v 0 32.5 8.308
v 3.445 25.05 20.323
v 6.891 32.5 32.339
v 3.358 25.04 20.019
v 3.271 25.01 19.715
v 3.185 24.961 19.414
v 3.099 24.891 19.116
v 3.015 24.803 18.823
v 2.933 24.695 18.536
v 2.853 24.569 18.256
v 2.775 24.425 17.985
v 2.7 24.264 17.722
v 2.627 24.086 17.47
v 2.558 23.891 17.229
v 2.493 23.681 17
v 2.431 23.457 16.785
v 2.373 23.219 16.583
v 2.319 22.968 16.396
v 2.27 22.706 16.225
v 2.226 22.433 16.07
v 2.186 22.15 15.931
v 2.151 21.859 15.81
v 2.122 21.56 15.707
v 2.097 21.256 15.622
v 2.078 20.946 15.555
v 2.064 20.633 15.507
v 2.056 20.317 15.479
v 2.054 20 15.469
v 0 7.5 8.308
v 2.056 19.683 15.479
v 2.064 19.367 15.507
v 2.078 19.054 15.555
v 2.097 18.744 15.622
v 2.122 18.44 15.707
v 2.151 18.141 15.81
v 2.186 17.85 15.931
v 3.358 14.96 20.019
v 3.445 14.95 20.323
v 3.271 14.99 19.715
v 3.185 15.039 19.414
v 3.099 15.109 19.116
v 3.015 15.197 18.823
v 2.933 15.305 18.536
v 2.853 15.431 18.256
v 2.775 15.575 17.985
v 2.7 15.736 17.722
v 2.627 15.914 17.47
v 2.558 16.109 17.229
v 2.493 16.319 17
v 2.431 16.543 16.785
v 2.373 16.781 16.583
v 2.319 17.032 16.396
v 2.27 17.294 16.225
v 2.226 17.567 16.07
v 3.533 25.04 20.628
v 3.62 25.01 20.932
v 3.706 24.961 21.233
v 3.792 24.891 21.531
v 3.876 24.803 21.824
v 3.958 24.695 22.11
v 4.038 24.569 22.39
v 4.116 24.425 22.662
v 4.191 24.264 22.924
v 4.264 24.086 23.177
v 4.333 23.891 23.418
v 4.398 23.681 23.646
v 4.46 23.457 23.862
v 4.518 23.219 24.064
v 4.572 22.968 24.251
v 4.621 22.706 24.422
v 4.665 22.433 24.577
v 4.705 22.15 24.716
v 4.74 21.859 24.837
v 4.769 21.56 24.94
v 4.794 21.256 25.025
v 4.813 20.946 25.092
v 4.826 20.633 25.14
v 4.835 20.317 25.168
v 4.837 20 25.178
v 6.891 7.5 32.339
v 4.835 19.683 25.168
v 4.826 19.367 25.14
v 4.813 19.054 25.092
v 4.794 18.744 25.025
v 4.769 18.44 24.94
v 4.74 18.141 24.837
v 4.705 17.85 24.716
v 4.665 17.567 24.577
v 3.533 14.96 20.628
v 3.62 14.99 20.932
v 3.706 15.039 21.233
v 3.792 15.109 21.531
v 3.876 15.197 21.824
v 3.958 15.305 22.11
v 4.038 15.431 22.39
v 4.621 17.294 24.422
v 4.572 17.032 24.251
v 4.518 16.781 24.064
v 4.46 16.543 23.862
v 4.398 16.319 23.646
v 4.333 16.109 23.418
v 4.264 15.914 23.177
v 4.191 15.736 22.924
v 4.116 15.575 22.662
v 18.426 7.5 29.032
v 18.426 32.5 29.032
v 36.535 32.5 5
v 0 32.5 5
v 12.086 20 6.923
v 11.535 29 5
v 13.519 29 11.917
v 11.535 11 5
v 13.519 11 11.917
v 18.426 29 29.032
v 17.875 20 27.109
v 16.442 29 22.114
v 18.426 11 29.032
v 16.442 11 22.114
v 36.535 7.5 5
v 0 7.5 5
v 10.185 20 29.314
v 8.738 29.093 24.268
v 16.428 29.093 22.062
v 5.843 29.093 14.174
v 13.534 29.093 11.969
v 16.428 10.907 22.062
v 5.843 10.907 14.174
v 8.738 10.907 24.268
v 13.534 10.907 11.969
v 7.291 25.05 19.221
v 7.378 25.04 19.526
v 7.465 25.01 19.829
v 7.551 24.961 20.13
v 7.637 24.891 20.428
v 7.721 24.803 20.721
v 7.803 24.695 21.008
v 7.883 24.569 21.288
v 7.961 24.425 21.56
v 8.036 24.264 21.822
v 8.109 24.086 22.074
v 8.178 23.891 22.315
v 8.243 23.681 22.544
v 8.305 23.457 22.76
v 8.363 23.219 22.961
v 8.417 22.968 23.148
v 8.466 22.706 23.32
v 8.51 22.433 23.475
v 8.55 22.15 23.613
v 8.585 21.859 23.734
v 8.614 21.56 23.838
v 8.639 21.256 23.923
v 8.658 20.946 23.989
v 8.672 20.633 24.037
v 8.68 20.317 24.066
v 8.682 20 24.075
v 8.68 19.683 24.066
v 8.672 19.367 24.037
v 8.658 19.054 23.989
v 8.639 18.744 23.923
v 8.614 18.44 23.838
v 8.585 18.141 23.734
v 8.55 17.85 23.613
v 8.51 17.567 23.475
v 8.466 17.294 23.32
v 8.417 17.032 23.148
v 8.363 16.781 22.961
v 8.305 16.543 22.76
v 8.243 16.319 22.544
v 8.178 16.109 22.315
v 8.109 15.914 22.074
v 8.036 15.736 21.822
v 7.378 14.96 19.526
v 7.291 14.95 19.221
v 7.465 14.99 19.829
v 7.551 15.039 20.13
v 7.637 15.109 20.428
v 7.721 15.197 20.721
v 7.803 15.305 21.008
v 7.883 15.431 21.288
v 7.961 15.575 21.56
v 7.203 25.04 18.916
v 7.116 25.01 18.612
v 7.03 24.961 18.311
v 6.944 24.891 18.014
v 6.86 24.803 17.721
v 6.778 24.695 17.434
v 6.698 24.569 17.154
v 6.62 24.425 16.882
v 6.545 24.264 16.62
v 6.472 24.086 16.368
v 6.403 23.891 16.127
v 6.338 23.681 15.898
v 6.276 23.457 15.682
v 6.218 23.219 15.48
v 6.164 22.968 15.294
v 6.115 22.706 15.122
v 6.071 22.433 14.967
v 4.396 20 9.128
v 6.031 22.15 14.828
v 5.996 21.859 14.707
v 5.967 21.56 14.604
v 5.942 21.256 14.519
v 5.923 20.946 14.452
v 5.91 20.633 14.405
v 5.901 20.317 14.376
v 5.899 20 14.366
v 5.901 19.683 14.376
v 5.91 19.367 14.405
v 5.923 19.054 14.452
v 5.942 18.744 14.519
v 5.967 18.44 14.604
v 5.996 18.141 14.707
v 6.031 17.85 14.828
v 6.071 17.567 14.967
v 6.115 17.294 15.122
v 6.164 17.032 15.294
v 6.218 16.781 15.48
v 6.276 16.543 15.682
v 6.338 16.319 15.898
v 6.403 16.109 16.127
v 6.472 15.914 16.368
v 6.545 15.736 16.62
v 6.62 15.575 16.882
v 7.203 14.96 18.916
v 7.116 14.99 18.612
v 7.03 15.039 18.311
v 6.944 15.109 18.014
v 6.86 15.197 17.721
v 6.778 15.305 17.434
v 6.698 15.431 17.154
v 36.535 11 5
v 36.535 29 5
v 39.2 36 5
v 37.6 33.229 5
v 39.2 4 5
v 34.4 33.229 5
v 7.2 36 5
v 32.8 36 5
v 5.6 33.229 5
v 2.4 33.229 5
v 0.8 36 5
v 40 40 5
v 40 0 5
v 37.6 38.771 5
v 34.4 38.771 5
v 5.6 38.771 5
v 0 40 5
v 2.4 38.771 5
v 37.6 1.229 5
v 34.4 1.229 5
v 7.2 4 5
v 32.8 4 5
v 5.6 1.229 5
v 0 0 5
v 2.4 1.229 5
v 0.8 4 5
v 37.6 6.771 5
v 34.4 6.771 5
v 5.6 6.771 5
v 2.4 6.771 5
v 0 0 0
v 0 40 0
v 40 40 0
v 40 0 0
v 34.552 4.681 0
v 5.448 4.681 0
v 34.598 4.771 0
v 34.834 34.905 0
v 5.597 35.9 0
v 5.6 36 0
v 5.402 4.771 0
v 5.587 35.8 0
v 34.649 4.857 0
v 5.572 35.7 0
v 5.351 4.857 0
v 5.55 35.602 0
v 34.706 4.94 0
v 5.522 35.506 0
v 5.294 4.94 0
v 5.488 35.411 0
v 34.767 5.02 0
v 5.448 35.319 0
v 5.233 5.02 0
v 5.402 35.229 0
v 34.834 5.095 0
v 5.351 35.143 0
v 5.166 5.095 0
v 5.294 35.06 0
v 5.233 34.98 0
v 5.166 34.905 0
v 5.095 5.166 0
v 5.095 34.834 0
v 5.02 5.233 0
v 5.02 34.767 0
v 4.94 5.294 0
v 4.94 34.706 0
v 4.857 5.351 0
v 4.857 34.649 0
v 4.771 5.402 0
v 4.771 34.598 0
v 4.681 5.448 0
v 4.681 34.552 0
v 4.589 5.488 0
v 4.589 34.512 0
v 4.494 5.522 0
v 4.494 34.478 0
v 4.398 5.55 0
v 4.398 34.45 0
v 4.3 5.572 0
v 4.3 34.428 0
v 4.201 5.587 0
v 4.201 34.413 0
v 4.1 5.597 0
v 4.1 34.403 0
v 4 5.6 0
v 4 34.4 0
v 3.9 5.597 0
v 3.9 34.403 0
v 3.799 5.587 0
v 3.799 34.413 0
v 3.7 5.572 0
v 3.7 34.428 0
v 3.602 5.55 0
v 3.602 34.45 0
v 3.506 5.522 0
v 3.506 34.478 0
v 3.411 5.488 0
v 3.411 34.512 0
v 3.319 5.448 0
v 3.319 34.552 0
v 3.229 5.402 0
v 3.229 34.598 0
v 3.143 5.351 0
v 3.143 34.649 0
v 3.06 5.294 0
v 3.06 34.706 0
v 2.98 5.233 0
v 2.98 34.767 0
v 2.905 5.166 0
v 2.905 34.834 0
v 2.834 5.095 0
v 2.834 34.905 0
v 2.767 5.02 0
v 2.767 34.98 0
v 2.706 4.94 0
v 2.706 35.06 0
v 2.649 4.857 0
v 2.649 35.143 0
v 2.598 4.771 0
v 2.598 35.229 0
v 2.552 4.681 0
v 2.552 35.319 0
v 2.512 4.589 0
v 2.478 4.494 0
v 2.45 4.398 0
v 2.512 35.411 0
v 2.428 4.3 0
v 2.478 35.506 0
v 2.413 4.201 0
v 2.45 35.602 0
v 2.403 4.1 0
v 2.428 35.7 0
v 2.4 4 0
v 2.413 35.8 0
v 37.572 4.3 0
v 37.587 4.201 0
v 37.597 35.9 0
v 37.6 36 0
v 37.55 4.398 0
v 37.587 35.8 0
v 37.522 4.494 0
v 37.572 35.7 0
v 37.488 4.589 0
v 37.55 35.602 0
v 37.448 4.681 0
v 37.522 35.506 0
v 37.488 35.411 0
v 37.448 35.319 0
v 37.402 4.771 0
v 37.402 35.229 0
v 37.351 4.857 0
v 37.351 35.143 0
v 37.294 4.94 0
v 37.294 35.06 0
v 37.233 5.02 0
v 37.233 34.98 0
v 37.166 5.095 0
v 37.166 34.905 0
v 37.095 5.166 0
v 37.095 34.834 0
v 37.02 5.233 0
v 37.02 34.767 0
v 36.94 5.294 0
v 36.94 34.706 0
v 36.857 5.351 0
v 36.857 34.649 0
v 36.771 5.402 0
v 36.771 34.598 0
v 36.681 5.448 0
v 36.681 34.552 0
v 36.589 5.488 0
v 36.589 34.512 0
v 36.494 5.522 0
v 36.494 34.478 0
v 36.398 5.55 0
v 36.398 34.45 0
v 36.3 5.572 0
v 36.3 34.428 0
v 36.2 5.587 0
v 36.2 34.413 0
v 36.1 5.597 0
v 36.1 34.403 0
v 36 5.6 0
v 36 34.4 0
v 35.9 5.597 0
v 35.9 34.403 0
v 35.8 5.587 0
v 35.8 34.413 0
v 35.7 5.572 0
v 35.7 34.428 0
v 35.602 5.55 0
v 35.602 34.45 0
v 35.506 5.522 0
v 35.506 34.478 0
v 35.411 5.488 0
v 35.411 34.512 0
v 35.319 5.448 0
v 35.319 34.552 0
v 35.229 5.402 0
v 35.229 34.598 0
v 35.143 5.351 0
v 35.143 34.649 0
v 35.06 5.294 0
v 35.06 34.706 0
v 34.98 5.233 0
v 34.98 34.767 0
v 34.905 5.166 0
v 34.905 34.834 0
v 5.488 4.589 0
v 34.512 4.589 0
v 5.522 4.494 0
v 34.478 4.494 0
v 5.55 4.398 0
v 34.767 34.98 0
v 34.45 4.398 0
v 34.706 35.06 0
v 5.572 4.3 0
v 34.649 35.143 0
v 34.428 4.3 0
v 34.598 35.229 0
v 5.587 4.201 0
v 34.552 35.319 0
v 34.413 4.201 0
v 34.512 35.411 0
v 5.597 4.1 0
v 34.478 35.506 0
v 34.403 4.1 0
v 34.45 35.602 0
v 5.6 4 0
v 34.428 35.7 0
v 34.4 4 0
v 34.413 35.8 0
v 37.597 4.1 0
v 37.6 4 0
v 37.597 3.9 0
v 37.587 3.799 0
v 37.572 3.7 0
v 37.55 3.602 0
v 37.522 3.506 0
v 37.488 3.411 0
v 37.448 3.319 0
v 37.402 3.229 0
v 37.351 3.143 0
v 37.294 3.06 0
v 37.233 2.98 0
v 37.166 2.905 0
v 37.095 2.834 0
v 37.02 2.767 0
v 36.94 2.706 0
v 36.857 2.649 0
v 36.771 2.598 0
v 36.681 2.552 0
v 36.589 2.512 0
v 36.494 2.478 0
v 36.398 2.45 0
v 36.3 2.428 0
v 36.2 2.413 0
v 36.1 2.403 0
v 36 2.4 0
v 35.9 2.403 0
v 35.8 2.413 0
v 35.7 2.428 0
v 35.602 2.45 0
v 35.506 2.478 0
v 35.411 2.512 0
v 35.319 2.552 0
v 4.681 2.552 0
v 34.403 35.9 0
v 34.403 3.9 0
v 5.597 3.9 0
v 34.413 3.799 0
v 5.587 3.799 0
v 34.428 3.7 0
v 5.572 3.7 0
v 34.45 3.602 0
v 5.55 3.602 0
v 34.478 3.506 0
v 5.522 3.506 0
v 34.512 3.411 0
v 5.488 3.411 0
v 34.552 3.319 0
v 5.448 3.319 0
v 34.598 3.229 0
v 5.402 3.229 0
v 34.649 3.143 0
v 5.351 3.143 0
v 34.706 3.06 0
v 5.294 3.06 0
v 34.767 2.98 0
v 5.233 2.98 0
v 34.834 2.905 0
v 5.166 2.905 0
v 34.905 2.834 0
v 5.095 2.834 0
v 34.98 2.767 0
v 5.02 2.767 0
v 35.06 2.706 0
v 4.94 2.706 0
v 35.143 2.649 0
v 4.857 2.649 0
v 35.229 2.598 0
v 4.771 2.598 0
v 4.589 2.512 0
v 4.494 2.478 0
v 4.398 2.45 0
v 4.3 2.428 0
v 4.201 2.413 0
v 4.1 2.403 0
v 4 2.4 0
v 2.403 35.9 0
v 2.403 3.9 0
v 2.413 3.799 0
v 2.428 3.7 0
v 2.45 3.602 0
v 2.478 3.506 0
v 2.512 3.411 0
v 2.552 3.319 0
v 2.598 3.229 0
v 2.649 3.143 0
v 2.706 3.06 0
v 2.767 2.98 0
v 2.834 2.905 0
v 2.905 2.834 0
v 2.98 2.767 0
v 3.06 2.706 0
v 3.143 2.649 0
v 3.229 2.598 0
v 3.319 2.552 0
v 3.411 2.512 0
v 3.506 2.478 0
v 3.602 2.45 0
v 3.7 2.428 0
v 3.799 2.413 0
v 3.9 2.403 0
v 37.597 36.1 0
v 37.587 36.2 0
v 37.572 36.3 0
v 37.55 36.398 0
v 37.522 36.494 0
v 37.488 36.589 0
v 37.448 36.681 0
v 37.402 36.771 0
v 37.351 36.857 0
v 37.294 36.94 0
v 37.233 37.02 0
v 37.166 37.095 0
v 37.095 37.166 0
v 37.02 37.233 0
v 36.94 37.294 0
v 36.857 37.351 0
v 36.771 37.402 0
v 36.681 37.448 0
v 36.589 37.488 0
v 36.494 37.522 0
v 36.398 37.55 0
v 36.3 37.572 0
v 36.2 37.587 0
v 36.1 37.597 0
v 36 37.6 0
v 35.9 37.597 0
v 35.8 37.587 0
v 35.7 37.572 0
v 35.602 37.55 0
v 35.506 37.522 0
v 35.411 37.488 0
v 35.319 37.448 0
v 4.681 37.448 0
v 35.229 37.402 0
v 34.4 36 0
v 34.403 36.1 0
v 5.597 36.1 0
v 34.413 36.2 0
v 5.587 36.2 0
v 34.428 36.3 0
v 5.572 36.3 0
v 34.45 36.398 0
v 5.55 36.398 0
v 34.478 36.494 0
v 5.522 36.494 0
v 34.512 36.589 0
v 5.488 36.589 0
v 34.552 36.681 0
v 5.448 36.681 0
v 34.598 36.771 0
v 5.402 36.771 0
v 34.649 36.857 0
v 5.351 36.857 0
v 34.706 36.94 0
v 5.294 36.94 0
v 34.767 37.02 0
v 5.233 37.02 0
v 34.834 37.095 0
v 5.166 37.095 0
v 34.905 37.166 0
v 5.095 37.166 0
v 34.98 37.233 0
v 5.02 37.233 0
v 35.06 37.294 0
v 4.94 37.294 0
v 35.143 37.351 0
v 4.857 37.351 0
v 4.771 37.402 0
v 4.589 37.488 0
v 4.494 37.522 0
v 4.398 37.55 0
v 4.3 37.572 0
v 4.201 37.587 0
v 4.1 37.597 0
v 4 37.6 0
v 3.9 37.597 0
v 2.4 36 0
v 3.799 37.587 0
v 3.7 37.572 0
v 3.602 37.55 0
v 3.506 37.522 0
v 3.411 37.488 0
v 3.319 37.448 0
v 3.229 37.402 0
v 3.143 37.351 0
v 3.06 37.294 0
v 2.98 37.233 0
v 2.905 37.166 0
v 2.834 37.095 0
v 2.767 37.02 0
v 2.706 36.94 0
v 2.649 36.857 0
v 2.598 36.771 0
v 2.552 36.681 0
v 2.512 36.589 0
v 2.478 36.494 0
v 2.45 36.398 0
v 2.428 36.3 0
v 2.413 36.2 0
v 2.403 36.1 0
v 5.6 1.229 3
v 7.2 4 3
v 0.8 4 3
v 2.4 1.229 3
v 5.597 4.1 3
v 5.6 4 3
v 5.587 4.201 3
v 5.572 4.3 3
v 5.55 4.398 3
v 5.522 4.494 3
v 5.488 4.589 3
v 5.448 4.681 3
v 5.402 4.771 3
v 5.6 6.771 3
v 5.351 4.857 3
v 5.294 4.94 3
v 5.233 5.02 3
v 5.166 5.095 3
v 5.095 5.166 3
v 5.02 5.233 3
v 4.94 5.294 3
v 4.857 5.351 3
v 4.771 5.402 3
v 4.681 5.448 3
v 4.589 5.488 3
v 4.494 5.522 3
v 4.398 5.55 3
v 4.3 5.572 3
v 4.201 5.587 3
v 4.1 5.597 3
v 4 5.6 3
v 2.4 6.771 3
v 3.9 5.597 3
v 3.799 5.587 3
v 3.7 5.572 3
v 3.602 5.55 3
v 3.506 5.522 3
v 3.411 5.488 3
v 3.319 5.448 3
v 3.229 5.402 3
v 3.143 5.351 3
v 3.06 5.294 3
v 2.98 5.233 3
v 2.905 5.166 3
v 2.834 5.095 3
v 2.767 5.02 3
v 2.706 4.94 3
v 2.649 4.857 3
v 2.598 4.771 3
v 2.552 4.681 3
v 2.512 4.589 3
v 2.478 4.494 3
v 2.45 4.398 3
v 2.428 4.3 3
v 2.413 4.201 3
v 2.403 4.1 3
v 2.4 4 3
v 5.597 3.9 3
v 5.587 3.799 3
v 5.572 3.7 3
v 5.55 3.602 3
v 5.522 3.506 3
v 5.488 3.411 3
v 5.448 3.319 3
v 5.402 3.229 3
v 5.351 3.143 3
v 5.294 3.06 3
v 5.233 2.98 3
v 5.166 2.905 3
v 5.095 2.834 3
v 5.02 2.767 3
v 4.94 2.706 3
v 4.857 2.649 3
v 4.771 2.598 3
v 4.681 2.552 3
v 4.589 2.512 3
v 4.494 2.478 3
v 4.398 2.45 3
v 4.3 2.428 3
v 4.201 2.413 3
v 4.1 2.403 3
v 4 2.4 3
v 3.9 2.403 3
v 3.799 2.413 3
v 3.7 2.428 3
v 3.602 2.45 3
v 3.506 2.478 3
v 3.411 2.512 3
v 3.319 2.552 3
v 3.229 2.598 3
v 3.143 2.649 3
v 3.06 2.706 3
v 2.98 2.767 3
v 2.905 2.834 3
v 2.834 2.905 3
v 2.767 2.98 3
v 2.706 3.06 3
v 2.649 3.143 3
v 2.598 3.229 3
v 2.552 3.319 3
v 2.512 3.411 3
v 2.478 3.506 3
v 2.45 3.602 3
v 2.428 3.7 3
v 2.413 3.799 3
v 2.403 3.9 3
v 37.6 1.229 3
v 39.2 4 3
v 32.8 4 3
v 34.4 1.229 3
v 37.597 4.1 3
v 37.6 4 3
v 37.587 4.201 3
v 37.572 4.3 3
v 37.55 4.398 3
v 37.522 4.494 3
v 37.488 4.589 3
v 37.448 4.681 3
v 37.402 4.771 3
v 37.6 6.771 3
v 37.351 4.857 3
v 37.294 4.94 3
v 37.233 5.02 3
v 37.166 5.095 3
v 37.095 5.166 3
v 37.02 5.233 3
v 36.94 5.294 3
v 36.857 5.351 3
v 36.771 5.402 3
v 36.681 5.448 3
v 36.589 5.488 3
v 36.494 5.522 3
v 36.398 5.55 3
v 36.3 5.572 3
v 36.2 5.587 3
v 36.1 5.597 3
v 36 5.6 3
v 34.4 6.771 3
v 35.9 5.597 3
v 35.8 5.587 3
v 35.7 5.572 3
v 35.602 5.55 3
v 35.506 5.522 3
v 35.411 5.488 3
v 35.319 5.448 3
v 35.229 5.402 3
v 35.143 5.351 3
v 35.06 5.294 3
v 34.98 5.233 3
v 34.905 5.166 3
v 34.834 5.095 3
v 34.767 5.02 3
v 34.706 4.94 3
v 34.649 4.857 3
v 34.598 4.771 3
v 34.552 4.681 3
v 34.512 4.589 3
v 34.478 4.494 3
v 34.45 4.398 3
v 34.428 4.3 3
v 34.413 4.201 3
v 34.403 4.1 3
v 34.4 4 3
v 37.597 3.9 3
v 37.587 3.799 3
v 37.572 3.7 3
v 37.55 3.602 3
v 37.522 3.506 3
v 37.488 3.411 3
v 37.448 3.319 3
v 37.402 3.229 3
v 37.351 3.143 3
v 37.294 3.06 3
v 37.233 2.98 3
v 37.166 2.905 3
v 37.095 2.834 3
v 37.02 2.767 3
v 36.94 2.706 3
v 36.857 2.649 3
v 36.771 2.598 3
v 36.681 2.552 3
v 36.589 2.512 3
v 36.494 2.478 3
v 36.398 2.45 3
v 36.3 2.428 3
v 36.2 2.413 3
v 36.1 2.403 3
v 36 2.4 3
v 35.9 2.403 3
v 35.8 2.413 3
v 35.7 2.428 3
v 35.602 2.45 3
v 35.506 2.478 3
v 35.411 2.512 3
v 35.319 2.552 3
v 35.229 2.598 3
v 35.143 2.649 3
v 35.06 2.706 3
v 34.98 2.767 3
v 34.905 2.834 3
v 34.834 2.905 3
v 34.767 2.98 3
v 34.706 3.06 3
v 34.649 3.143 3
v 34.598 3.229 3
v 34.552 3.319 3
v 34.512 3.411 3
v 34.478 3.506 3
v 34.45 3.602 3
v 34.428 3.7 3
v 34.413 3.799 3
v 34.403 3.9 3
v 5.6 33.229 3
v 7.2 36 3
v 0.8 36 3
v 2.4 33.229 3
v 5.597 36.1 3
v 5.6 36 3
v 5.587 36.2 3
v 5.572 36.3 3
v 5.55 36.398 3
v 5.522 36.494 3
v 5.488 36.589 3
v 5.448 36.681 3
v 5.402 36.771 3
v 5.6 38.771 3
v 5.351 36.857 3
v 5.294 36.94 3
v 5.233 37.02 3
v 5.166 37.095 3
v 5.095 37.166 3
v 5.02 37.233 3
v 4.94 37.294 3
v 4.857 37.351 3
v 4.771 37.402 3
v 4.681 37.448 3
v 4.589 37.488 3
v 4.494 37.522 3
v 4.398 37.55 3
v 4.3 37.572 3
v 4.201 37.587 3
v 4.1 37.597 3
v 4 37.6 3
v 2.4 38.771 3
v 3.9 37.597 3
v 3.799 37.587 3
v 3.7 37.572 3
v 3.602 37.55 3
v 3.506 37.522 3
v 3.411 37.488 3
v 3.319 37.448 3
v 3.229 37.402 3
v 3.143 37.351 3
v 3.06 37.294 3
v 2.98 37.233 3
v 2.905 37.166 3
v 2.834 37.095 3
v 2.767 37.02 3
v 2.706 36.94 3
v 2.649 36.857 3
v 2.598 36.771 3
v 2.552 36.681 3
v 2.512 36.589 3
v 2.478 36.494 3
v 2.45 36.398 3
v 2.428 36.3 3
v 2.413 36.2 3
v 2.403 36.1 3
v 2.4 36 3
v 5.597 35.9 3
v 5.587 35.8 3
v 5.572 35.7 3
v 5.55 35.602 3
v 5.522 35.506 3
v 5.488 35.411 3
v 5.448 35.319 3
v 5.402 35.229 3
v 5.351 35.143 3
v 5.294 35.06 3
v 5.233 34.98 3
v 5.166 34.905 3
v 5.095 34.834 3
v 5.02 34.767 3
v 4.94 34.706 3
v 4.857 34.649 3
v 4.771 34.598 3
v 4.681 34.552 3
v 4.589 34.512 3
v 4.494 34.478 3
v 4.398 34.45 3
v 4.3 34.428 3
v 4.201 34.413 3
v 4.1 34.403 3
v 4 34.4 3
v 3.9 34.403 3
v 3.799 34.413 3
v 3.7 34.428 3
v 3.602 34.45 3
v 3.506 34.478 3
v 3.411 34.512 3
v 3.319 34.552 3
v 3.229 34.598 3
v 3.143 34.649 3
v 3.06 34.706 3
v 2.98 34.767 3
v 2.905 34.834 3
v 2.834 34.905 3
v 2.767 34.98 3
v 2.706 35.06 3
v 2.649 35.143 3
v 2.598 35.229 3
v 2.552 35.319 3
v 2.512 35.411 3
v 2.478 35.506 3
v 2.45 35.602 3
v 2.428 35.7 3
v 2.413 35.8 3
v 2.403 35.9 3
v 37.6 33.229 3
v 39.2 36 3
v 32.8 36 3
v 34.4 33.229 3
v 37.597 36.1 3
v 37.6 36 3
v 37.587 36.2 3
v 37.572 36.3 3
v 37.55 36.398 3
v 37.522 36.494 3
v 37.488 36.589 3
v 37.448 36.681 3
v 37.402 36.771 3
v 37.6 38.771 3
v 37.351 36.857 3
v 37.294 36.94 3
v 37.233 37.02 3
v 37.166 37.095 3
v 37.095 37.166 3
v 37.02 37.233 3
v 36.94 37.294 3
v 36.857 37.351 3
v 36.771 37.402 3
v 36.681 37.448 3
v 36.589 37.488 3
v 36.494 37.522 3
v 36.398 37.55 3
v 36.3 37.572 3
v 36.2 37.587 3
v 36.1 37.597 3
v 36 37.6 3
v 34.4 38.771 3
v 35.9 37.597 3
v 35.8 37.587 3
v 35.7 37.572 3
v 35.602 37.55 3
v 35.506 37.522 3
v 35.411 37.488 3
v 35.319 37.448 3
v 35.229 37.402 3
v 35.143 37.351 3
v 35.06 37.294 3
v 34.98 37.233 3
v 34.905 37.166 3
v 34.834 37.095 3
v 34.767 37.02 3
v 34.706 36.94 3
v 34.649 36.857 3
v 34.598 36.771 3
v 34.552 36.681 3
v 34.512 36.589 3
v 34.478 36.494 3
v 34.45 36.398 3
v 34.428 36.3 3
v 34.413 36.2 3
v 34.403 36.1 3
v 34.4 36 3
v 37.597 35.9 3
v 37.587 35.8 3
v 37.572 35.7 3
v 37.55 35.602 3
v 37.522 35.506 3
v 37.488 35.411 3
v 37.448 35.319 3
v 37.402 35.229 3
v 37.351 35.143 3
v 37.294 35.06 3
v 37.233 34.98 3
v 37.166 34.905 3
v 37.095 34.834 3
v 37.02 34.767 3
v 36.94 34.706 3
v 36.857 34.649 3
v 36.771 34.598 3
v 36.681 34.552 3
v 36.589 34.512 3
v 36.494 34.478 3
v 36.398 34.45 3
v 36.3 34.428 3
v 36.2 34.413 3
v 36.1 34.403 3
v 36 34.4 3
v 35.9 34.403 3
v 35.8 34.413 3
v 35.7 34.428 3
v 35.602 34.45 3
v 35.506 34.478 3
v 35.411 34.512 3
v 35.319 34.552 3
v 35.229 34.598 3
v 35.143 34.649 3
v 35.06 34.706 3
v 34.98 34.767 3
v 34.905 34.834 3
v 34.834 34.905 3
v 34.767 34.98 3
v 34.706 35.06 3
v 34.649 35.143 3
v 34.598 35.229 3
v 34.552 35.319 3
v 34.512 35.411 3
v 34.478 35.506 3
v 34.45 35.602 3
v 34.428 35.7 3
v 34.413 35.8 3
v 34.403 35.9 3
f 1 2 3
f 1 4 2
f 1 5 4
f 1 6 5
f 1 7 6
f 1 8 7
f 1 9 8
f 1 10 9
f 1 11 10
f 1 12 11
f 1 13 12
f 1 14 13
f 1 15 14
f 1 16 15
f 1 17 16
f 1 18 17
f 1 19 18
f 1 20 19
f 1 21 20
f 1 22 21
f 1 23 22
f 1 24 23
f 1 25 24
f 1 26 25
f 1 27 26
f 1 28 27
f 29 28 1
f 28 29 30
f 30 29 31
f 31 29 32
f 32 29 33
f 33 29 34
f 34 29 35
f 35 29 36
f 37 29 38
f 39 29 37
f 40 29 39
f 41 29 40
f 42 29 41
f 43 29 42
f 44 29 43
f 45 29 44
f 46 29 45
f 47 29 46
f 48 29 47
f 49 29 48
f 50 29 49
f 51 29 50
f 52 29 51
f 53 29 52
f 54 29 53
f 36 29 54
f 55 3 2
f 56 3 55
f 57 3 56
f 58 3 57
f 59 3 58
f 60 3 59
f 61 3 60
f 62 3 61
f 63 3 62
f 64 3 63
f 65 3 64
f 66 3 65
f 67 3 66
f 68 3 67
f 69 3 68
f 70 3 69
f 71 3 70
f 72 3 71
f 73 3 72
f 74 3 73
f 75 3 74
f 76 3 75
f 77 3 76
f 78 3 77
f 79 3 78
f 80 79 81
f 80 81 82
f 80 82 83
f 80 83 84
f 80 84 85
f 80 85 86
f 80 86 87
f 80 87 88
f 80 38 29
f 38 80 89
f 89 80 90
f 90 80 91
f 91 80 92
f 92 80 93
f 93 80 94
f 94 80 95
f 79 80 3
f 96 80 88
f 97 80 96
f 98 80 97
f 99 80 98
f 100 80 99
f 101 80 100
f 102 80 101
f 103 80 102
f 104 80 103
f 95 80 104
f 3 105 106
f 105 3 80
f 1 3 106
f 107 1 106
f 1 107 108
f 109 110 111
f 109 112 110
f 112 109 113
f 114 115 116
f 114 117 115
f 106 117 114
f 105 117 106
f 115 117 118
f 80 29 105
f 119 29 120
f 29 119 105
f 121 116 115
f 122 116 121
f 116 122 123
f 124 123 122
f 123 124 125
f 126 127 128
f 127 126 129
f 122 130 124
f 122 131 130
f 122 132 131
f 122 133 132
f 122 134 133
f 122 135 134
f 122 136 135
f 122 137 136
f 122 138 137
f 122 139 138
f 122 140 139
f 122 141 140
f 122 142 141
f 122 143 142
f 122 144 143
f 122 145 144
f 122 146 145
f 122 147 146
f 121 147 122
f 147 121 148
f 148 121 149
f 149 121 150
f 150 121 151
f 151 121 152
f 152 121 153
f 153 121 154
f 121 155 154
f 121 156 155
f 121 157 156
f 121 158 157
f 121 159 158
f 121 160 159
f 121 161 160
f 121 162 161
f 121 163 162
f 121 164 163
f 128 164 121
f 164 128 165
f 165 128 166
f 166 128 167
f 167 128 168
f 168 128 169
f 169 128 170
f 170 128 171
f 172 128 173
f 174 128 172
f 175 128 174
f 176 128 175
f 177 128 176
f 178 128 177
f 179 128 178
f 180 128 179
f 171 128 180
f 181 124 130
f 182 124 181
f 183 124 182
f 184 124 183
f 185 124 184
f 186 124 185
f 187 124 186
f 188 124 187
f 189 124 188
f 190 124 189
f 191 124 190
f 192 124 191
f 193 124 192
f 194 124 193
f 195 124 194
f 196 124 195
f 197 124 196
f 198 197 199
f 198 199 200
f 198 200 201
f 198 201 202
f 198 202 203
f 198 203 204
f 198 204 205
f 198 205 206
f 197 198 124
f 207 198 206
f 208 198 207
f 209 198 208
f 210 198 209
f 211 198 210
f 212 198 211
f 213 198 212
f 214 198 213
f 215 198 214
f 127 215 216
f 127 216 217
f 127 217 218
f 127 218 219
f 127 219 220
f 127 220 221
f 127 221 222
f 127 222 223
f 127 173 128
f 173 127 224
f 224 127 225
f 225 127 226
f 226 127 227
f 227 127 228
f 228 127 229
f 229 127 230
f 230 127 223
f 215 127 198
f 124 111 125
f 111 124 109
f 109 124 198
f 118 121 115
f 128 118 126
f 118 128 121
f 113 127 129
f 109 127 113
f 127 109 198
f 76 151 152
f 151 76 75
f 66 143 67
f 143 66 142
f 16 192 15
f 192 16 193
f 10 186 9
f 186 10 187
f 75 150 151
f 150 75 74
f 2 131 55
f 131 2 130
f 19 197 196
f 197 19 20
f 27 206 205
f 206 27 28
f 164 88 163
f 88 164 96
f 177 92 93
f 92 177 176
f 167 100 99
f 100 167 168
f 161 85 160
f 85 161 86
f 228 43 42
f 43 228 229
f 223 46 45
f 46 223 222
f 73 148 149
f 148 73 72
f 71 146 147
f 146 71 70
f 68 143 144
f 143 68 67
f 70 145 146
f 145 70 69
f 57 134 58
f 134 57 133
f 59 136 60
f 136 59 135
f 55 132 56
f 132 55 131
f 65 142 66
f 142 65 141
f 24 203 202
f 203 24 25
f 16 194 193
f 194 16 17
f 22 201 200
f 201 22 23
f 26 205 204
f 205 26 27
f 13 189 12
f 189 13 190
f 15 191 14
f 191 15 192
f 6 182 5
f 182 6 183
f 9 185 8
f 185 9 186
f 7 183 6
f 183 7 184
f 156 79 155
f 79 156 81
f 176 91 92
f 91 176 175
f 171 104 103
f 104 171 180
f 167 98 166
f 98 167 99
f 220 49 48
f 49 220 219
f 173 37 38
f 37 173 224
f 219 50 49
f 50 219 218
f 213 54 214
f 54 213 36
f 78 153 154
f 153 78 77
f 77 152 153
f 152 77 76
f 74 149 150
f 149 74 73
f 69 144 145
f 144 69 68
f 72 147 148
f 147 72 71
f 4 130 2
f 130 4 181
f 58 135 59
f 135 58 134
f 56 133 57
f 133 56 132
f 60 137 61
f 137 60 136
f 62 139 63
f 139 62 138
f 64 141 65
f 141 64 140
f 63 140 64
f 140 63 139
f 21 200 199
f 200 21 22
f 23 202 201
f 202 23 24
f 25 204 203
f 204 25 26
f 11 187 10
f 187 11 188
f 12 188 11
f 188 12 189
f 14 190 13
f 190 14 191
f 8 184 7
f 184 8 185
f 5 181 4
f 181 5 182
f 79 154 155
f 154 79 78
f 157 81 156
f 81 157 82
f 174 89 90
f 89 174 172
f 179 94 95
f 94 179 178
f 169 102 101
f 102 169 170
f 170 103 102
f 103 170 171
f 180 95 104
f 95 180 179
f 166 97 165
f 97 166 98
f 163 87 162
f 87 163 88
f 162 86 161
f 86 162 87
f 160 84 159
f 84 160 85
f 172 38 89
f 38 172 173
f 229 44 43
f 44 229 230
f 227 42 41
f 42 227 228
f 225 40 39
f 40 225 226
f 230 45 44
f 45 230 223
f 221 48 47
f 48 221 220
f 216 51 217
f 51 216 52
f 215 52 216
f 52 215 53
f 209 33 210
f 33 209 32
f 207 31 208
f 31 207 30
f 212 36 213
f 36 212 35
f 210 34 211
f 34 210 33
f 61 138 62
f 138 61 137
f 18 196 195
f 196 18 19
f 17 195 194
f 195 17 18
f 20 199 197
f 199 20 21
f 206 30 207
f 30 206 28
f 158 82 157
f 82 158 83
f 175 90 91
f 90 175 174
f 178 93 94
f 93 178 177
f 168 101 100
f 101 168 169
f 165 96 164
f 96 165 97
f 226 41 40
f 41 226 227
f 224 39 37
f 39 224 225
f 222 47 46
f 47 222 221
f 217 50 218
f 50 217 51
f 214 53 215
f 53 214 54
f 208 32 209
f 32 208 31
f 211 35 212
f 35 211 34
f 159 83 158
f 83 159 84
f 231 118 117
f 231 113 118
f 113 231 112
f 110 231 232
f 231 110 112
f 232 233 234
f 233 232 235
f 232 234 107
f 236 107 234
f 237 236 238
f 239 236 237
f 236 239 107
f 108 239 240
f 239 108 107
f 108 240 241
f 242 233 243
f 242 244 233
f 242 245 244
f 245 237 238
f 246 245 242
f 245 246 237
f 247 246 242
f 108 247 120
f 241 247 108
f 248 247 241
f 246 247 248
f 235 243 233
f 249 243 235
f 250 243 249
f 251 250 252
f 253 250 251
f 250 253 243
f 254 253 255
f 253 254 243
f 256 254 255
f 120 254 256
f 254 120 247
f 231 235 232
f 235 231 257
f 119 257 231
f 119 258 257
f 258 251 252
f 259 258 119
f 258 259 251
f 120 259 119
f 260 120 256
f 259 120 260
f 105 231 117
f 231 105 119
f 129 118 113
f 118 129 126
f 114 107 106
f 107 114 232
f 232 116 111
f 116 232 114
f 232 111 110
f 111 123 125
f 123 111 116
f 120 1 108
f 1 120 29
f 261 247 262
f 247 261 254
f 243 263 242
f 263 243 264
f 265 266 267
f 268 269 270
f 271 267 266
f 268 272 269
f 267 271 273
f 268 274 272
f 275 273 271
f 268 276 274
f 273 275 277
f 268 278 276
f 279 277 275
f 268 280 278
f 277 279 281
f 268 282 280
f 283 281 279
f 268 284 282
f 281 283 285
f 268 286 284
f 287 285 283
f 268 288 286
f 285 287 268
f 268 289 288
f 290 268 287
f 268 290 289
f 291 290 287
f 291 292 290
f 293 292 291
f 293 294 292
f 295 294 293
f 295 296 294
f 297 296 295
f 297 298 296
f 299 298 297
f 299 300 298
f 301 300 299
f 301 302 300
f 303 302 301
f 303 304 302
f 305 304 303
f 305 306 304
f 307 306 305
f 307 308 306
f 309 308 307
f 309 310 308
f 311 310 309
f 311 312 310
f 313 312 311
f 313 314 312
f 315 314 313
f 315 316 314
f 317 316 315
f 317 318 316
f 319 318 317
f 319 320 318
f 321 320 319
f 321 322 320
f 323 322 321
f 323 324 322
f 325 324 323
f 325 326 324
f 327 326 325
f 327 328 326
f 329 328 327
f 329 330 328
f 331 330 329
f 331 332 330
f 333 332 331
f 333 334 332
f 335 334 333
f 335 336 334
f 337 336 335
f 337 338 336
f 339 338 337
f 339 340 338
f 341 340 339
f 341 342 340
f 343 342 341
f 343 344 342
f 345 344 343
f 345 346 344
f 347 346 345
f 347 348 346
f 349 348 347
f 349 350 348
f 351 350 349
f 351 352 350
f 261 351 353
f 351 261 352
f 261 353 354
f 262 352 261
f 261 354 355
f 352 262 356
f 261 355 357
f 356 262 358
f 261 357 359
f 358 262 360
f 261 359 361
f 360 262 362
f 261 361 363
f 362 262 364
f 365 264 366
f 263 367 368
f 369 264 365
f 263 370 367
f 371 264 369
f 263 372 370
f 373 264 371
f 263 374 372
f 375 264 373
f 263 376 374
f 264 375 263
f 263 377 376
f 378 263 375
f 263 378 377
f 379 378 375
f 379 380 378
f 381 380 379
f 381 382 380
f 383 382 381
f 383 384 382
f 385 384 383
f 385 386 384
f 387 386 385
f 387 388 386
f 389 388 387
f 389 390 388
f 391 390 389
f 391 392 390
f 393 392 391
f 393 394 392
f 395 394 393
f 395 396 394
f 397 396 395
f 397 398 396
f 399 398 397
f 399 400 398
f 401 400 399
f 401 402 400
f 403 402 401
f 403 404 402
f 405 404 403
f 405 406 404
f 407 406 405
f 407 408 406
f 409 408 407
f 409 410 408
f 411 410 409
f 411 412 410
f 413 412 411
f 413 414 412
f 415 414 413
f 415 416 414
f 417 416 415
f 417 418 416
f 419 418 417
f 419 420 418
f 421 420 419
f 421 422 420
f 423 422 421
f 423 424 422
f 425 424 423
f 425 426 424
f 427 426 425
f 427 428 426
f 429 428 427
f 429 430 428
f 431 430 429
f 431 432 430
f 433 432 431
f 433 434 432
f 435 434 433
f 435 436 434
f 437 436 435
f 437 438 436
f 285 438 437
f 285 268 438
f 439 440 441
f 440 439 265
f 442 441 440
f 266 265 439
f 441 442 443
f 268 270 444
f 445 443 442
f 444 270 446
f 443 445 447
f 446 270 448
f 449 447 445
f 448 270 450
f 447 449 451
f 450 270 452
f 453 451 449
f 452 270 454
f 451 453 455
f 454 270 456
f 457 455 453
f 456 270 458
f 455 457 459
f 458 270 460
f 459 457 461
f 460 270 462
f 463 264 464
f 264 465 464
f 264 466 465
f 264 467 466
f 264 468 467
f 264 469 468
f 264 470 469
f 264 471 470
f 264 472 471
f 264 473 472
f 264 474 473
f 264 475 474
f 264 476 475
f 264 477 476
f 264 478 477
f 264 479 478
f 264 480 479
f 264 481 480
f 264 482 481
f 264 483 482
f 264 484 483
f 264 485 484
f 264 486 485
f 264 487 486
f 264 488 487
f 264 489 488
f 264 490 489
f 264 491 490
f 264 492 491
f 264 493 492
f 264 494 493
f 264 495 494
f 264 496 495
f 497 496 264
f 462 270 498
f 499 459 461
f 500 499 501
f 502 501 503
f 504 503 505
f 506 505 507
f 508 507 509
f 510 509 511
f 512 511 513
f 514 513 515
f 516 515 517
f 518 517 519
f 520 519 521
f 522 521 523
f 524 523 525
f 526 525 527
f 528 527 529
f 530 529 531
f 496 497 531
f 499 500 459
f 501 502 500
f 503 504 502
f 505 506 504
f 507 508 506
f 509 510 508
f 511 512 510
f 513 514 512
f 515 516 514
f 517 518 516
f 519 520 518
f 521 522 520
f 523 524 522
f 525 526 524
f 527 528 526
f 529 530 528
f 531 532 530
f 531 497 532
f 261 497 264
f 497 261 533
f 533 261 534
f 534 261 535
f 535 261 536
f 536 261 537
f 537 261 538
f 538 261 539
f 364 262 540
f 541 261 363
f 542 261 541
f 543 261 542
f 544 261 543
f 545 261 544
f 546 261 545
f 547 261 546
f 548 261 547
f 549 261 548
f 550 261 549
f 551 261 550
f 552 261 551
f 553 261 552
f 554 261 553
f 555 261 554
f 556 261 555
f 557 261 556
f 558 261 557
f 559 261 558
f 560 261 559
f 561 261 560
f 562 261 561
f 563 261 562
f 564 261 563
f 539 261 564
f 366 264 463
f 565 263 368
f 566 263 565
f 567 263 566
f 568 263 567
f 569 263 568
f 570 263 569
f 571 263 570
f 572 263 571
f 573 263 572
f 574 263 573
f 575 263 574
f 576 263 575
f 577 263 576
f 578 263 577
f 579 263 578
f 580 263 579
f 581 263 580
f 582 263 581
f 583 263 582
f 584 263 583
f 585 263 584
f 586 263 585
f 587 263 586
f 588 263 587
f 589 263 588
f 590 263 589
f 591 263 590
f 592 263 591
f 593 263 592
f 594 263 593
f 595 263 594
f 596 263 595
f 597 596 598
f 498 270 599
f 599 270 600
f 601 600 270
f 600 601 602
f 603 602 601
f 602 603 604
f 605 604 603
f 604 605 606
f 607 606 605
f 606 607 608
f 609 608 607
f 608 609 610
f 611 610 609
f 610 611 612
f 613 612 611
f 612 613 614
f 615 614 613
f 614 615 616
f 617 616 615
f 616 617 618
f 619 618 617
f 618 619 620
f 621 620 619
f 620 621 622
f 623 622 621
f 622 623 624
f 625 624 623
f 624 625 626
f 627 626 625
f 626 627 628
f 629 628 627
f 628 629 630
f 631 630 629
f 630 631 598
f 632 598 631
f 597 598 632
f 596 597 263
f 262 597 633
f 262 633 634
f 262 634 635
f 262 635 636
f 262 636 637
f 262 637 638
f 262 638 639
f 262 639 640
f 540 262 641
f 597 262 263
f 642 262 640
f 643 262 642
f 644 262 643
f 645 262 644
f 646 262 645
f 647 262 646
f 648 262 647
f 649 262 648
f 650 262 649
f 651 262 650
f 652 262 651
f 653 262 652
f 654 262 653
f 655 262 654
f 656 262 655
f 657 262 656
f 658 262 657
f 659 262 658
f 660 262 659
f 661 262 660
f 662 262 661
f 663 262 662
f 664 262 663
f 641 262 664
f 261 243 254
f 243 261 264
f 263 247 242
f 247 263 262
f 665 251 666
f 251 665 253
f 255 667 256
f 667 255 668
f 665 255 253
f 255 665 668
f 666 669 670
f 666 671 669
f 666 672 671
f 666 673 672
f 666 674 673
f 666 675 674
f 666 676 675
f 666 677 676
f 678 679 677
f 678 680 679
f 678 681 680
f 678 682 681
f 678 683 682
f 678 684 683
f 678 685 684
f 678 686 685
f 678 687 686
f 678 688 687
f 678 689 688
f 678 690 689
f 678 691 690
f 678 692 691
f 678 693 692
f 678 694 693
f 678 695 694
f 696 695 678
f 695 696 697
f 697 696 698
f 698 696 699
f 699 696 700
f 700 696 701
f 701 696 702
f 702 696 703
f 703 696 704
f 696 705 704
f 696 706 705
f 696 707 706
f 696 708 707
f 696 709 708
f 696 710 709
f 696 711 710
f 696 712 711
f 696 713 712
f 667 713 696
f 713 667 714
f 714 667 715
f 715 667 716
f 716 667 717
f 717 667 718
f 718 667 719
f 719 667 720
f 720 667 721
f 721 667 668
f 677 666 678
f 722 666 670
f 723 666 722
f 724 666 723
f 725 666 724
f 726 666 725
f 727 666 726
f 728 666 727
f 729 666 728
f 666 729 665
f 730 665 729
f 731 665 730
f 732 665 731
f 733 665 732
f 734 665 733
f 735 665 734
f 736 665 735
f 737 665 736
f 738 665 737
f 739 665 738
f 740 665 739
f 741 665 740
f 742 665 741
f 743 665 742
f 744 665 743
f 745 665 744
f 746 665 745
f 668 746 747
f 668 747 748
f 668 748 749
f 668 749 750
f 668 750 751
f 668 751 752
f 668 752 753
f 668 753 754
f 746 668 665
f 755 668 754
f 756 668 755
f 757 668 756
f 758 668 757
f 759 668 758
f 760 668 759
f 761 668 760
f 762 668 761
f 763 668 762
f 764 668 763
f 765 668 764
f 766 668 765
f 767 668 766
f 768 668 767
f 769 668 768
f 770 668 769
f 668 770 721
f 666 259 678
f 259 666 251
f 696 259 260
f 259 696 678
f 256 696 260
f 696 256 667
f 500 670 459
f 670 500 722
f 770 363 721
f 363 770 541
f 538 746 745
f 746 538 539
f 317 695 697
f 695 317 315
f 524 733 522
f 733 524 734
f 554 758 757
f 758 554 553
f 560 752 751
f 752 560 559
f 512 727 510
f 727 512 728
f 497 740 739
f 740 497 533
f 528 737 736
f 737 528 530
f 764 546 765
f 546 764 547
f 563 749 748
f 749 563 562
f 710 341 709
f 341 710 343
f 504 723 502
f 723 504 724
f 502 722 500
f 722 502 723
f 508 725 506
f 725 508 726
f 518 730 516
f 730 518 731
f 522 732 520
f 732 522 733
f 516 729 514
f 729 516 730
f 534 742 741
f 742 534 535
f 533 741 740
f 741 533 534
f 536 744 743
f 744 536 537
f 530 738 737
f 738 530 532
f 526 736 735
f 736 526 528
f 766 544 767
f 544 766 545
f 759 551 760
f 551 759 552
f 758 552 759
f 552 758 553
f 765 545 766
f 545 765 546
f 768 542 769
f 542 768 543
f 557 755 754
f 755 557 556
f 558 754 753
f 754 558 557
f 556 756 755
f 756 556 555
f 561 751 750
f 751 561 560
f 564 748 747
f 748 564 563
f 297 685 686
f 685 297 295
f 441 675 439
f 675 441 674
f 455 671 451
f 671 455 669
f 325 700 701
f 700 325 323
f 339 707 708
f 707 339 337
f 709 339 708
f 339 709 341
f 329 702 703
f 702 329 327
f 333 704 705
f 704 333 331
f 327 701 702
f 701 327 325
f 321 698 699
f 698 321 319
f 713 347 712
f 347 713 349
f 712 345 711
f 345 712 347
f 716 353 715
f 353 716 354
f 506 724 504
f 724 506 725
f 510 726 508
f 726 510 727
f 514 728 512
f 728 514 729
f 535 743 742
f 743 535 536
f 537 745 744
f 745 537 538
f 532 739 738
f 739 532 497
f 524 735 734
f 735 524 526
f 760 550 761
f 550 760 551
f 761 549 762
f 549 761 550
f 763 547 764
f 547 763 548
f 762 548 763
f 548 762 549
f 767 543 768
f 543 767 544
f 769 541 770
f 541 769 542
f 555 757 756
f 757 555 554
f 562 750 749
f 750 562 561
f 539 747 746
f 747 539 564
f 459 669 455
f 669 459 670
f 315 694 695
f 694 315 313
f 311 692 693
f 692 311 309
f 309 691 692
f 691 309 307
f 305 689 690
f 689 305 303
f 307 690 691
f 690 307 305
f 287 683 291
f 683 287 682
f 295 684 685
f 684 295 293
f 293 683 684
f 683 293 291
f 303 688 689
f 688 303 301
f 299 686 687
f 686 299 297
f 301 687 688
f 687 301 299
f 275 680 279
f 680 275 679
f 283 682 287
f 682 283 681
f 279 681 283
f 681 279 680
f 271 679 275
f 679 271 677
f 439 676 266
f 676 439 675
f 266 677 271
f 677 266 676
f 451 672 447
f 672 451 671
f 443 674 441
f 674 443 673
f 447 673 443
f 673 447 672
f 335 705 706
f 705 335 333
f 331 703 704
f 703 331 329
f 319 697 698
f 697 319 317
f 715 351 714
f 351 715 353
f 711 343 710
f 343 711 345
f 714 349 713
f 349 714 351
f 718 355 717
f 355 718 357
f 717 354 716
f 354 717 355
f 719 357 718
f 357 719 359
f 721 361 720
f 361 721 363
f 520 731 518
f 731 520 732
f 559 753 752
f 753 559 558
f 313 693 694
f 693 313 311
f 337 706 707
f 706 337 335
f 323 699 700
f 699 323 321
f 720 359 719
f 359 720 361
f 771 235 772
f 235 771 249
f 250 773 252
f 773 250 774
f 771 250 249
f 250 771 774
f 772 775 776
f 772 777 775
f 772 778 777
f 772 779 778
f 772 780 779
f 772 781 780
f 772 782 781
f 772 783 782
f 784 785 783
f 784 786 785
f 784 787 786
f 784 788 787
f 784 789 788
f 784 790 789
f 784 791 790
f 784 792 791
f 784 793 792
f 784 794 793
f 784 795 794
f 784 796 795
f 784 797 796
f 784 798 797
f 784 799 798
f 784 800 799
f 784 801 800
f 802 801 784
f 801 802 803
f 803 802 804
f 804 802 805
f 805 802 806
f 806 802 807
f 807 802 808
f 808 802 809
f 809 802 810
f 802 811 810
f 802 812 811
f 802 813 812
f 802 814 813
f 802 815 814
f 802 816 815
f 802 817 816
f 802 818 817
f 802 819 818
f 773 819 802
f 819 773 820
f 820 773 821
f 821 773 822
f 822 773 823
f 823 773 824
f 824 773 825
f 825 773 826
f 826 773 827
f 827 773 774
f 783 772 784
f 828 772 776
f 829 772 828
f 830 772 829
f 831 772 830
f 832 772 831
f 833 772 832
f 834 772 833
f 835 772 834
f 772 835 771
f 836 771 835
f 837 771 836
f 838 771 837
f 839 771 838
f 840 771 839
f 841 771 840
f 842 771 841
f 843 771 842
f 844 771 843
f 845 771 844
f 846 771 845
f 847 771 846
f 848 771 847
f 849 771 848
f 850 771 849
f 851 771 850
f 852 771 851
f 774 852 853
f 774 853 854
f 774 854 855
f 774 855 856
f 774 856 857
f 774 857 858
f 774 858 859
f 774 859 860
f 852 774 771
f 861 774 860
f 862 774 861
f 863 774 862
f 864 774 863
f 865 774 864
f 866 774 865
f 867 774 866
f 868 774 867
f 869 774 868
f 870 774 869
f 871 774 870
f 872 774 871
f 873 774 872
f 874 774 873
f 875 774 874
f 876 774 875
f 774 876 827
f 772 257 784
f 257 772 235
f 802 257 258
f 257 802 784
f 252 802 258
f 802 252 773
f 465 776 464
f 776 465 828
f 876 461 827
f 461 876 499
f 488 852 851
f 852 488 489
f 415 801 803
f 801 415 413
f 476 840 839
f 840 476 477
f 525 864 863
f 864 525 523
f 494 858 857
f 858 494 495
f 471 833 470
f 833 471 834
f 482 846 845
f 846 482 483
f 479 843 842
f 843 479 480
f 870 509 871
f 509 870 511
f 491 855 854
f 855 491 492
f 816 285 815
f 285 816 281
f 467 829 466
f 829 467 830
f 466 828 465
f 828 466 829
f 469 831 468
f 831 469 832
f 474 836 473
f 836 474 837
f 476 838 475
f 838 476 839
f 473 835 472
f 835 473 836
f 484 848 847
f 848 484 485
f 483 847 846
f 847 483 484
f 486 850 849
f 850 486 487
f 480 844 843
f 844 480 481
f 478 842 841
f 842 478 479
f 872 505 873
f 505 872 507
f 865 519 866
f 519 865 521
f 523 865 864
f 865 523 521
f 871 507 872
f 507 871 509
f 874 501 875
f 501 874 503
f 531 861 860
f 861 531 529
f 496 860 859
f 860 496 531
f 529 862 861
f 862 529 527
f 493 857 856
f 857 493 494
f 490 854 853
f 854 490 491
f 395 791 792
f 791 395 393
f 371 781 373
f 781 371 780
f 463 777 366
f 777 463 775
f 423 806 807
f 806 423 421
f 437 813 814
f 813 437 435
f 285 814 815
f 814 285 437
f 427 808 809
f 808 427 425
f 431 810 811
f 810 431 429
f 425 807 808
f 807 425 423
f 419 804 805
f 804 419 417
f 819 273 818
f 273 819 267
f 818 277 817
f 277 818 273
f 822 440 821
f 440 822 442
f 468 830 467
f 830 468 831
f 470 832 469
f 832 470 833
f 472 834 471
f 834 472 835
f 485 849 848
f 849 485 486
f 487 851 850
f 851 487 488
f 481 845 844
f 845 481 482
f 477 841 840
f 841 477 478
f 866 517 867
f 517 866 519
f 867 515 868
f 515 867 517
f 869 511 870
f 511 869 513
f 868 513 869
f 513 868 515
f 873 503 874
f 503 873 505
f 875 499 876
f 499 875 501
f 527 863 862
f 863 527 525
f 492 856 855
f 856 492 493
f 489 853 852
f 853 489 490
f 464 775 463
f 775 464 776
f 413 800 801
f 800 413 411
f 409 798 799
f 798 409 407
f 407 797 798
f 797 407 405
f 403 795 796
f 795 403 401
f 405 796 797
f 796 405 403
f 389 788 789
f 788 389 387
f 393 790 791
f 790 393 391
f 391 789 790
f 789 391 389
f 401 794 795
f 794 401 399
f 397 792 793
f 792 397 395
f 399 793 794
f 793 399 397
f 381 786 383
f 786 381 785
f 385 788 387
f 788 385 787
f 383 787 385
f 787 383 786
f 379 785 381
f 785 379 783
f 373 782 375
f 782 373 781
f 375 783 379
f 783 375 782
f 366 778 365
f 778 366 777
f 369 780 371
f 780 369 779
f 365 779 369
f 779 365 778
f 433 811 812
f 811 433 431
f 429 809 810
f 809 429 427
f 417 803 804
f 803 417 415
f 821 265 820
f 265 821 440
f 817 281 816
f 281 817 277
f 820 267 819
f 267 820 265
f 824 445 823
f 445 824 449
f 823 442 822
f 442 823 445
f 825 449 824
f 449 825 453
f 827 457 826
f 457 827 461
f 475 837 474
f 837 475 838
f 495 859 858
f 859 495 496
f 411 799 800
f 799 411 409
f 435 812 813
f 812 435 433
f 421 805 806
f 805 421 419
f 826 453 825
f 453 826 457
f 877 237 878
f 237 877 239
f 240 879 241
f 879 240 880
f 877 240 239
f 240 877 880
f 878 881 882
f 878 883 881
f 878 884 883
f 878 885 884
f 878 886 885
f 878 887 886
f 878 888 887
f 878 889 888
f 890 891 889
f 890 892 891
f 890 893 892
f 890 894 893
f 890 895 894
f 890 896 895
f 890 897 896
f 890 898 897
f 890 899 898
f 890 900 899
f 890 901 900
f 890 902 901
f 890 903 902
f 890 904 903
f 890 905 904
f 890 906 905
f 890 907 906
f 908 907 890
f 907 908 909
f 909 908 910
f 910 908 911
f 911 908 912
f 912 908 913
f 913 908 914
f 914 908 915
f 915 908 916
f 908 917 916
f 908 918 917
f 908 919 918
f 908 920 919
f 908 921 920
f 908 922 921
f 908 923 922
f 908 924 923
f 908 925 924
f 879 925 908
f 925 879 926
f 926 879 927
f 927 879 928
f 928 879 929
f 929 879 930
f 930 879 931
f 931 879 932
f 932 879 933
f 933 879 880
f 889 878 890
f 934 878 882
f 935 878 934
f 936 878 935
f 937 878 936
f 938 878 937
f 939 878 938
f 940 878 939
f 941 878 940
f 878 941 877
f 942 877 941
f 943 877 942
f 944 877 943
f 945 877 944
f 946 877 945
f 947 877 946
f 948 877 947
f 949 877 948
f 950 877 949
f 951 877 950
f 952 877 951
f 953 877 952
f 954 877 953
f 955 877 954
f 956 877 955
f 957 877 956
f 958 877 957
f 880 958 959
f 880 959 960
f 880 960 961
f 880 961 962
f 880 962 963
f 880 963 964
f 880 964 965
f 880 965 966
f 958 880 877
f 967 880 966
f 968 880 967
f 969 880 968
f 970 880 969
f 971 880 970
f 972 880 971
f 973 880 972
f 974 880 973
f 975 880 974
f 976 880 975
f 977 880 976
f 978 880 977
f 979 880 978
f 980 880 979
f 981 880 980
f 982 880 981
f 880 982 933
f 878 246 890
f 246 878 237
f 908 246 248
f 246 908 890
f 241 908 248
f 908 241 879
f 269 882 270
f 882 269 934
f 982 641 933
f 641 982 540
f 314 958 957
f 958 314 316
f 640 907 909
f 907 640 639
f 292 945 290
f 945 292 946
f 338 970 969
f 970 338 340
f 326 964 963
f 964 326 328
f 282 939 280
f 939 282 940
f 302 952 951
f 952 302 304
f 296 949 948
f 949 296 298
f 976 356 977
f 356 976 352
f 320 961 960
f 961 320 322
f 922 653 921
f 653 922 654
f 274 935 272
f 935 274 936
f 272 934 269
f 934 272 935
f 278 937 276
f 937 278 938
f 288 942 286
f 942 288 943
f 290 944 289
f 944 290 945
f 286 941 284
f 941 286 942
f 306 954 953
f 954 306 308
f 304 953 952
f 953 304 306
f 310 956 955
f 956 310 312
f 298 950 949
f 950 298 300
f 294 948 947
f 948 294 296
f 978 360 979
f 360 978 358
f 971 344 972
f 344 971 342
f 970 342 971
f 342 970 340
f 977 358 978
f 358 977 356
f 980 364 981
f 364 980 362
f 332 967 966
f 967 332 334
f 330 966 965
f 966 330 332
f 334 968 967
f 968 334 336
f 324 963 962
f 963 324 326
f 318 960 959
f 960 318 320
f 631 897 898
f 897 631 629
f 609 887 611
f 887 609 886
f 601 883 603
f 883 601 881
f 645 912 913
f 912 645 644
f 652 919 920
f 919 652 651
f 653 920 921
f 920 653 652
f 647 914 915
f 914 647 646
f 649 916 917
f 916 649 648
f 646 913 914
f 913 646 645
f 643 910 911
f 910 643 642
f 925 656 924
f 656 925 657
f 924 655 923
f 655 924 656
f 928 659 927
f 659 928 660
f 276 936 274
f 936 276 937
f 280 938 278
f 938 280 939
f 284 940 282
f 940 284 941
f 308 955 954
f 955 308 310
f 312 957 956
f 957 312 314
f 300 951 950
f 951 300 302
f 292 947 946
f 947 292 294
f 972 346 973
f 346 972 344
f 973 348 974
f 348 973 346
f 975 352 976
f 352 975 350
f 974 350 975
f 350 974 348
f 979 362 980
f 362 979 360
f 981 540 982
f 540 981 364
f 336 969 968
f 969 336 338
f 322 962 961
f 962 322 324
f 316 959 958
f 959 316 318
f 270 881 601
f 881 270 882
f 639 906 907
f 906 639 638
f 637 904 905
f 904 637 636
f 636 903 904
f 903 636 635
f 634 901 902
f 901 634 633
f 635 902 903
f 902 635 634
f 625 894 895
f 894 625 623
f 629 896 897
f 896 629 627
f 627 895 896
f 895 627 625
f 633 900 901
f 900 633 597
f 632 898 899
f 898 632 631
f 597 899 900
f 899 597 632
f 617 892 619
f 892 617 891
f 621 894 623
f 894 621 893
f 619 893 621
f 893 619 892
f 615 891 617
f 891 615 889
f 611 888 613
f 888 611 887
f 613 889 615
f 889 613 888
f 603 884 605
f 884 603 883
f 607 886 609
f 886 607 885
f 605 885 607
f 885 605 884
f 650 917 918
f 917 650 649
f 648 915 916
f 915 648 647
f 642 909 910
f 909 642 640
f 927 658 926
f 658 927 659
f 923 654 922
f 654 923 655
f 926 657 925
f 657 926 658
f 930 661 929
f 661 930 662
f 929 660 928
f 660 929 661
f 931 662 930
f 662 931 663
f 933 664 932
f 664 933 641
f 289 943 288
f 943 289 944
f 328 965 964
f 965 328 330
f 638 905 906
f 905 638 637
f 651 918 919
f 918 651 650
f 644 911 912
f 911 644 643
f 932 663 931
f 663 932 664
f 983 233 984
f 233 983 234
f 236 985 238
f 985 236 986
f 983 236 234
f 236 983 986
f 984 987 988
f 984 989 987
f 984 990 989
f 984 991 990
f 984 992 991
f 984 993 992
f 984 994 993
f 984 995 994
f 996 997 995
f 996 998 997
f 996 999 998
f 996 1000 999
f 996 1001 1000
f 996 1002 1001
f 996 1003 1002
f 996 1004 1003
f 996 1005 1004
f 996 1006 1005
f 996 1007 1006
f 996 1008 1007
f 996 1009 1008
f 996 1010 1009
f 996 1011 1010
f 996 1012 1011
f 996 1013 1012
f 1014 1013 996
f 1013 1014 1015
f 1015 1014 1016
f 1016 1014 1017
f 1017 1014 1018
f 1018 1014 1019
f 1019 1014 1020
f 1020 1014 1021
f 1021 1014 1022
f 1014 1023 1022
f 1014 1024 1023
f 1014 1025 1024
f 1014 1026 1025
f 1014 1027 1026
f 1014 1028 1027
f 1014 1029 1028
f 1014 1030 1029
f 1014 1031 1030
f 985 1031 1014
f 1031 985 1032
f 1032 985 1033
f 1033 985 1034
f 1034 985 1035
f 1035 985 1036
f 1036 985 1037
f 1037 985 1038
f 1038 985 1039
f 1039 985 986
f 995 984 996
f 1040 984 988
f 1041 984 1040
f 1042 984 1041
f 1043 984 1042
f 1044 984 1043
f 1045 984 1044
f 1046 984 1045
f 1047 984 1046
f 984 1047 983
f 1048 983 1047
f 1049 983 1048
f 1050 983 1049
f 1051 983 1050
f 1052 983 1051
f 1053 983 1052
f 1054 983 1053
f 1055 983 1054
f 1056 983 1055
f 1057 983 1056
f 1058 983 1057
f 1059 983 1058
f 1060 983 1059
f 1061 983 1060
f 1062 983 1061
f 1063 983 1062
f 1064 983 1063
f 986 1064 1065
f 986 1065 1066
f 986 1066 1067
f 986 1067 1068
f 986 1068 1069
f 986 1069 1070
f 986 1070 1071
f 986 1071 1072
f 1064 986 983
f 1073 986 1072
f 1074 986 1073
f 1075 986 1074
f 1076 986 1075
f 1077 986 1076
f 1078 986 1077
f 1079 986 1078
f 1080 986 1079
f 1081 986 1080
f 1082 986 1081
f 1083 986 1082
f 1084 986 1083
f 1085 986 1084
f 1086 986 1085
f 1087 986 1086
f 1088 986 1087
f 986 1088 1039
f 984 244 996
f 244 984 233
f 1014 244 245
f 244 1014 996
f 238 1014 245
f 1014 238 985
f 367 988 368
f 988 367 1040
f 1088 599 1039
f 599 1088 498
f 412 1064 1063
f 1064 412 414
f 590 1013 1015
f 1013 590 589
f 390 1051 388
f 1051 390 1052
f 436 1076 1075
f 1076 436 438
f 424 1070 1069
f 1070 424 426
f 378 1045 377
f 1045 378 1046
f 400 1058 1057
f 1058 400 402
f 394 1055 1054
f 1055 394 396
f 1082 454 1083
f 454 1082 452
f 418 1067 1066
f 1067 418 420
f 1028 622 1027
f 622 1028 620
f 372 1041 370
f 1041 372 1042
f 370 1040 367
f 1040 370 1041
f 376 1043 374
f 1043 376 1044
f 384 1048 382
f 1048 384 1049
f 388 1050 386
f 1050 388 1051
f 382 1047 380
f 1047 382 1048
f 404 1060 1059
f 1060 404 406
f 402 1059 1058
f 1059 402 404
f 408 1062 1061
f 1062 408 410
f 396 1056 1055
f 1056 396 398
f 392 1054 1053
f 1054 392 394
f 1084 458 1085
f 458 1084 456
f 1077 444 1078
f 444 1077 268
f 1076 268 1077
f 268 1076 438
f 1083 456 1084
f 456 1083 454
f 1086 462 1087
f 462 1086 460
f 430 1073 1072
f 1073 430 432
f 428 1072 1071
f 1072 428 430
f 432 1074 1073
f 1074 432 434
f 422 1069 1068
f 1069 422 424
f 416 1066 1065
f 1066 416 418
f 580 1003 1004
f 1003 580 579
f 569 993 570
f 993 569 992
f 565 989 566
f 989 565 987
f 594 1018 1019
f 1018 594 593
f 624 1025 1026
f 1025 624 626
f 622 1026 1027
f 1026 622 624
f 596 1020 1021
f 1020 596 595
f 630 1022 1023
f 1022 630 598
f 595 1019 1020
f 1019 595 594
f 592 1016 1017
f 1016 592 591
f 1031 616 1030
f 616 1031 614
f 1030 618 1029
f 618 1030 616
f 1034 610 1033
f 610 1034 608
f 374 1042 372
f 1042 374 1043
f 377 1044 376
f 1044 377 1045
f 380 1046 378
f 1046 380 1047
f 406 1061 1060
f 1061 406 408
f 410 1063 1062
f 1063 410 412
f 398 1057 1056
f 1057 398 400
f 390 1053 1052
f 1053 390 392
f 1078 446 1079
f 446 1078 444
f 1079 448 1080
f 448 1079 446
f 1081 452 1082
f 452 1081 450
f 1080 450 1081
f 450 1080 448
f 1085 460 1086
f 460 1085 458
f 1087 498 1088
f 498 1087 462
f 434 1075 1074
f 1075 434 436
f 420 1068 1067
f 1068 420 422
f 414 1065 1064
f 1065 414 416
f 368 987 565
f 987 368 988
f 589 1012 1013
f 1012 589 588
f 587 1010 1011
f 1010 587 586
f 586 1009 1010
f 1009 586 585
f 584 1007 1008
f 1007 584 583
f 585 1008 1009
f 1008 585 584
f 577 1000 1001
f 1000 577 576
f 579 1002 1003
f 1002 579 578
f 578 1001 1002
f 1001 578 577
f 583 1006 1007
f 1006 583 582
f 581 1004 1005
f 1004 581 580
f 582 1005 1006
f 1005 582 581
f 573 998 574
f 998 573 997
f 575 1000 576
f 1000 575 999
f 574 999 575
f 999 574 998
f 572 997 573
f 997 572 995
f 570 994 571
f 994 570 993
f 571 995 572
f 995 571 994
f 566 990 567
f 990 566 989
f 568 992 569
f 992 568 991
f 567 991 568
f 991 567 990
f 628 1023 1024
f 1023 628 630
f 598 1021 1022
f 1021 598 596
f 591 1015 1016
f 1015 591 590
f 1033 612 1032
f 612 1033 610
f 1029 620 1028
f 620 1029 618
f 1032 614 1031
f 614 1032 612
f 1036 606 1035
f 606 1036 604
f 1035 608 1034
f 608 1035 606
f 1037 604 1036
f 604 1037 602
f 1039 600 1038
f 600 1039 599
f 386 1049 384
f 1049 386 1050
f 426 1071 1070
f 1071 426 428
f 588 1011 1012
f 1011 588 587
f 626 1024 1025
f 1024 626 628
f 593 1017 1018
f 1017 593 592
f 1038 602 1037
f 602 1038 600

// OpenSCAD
ang=74;

wm=40;
hm=40;

h=12;
wns=25;
hns=25;
ww=3.5;
wh=5;

d_nut=21;
d_hole=10.1;
h_nut=8;

module m3_support(){
    $fn=100;
    cylinder(r=3,h=3);
    translate([0,0,3])cylinder(r1=3,r2=1.6,h=2);
    cylinder(r=1.6,h=50);
}


module s_wall(){
    difference(){
    linear_extrude(height = ww)polygon( points= [ [0,0], [hns*cos(ang),hns*sin(ang)],[hns,0]]);
    }
}


module s_mount(){
        rotate([0,-ang,0])union(){
            difference(){
            cube([hns,wns,h]);    
            translate([hns/2,wns/2,-1])cylinder(r=d_nut/2,h=h_nut+1, $fn=6);
            translate([hns/2,wns/2,-1])cylinder(r=d_hole/2,h=h_nut*2, $fn=100);
            }
        }
            translate([0,ww,0])rotate([90])s_wall();
            translate([0,wns,0])rotate([90])s_wall();
        translate([-h*cos(90-ang)])rotate([-90])linear_extrude(height = wns)polygon( points= [ [0,0], [-h*cos(90-ang),-h*sin(90-ang)],[-h*cos(90-ang),0]]);
}

module m3_hole(){
    translate([0,0,-2])cylinder(r=3.2, h=5, $fn=6);
    cylinder(r=1.6,h=30, $fn=100);
}

module main(){
    difference(){
    union(){
        cube([hm,wm,wh]);
        translate([h*cos(90-ang),(wm-wns)/2,wh])s_mount();
    }
    translate([4,4,6])rotate([180])m3_hole();
    translate([hm-4,4,6])rotate([180])m3_hole();
    translate([4,wm-4,6])rotate([180])m3_hole();
    translate([hm-4,wm-4,6])rotate([180])m3_hole();
}
}
    
main();
//s_mount();
//translate([-h*cos(90-ang)])rotate([90])linear_extrude(height = wns)polygon( points= [ [0,0], [-h*cos(90-ang),h*sin(90-ang)],[-h*cos(90-ang),0]]);
